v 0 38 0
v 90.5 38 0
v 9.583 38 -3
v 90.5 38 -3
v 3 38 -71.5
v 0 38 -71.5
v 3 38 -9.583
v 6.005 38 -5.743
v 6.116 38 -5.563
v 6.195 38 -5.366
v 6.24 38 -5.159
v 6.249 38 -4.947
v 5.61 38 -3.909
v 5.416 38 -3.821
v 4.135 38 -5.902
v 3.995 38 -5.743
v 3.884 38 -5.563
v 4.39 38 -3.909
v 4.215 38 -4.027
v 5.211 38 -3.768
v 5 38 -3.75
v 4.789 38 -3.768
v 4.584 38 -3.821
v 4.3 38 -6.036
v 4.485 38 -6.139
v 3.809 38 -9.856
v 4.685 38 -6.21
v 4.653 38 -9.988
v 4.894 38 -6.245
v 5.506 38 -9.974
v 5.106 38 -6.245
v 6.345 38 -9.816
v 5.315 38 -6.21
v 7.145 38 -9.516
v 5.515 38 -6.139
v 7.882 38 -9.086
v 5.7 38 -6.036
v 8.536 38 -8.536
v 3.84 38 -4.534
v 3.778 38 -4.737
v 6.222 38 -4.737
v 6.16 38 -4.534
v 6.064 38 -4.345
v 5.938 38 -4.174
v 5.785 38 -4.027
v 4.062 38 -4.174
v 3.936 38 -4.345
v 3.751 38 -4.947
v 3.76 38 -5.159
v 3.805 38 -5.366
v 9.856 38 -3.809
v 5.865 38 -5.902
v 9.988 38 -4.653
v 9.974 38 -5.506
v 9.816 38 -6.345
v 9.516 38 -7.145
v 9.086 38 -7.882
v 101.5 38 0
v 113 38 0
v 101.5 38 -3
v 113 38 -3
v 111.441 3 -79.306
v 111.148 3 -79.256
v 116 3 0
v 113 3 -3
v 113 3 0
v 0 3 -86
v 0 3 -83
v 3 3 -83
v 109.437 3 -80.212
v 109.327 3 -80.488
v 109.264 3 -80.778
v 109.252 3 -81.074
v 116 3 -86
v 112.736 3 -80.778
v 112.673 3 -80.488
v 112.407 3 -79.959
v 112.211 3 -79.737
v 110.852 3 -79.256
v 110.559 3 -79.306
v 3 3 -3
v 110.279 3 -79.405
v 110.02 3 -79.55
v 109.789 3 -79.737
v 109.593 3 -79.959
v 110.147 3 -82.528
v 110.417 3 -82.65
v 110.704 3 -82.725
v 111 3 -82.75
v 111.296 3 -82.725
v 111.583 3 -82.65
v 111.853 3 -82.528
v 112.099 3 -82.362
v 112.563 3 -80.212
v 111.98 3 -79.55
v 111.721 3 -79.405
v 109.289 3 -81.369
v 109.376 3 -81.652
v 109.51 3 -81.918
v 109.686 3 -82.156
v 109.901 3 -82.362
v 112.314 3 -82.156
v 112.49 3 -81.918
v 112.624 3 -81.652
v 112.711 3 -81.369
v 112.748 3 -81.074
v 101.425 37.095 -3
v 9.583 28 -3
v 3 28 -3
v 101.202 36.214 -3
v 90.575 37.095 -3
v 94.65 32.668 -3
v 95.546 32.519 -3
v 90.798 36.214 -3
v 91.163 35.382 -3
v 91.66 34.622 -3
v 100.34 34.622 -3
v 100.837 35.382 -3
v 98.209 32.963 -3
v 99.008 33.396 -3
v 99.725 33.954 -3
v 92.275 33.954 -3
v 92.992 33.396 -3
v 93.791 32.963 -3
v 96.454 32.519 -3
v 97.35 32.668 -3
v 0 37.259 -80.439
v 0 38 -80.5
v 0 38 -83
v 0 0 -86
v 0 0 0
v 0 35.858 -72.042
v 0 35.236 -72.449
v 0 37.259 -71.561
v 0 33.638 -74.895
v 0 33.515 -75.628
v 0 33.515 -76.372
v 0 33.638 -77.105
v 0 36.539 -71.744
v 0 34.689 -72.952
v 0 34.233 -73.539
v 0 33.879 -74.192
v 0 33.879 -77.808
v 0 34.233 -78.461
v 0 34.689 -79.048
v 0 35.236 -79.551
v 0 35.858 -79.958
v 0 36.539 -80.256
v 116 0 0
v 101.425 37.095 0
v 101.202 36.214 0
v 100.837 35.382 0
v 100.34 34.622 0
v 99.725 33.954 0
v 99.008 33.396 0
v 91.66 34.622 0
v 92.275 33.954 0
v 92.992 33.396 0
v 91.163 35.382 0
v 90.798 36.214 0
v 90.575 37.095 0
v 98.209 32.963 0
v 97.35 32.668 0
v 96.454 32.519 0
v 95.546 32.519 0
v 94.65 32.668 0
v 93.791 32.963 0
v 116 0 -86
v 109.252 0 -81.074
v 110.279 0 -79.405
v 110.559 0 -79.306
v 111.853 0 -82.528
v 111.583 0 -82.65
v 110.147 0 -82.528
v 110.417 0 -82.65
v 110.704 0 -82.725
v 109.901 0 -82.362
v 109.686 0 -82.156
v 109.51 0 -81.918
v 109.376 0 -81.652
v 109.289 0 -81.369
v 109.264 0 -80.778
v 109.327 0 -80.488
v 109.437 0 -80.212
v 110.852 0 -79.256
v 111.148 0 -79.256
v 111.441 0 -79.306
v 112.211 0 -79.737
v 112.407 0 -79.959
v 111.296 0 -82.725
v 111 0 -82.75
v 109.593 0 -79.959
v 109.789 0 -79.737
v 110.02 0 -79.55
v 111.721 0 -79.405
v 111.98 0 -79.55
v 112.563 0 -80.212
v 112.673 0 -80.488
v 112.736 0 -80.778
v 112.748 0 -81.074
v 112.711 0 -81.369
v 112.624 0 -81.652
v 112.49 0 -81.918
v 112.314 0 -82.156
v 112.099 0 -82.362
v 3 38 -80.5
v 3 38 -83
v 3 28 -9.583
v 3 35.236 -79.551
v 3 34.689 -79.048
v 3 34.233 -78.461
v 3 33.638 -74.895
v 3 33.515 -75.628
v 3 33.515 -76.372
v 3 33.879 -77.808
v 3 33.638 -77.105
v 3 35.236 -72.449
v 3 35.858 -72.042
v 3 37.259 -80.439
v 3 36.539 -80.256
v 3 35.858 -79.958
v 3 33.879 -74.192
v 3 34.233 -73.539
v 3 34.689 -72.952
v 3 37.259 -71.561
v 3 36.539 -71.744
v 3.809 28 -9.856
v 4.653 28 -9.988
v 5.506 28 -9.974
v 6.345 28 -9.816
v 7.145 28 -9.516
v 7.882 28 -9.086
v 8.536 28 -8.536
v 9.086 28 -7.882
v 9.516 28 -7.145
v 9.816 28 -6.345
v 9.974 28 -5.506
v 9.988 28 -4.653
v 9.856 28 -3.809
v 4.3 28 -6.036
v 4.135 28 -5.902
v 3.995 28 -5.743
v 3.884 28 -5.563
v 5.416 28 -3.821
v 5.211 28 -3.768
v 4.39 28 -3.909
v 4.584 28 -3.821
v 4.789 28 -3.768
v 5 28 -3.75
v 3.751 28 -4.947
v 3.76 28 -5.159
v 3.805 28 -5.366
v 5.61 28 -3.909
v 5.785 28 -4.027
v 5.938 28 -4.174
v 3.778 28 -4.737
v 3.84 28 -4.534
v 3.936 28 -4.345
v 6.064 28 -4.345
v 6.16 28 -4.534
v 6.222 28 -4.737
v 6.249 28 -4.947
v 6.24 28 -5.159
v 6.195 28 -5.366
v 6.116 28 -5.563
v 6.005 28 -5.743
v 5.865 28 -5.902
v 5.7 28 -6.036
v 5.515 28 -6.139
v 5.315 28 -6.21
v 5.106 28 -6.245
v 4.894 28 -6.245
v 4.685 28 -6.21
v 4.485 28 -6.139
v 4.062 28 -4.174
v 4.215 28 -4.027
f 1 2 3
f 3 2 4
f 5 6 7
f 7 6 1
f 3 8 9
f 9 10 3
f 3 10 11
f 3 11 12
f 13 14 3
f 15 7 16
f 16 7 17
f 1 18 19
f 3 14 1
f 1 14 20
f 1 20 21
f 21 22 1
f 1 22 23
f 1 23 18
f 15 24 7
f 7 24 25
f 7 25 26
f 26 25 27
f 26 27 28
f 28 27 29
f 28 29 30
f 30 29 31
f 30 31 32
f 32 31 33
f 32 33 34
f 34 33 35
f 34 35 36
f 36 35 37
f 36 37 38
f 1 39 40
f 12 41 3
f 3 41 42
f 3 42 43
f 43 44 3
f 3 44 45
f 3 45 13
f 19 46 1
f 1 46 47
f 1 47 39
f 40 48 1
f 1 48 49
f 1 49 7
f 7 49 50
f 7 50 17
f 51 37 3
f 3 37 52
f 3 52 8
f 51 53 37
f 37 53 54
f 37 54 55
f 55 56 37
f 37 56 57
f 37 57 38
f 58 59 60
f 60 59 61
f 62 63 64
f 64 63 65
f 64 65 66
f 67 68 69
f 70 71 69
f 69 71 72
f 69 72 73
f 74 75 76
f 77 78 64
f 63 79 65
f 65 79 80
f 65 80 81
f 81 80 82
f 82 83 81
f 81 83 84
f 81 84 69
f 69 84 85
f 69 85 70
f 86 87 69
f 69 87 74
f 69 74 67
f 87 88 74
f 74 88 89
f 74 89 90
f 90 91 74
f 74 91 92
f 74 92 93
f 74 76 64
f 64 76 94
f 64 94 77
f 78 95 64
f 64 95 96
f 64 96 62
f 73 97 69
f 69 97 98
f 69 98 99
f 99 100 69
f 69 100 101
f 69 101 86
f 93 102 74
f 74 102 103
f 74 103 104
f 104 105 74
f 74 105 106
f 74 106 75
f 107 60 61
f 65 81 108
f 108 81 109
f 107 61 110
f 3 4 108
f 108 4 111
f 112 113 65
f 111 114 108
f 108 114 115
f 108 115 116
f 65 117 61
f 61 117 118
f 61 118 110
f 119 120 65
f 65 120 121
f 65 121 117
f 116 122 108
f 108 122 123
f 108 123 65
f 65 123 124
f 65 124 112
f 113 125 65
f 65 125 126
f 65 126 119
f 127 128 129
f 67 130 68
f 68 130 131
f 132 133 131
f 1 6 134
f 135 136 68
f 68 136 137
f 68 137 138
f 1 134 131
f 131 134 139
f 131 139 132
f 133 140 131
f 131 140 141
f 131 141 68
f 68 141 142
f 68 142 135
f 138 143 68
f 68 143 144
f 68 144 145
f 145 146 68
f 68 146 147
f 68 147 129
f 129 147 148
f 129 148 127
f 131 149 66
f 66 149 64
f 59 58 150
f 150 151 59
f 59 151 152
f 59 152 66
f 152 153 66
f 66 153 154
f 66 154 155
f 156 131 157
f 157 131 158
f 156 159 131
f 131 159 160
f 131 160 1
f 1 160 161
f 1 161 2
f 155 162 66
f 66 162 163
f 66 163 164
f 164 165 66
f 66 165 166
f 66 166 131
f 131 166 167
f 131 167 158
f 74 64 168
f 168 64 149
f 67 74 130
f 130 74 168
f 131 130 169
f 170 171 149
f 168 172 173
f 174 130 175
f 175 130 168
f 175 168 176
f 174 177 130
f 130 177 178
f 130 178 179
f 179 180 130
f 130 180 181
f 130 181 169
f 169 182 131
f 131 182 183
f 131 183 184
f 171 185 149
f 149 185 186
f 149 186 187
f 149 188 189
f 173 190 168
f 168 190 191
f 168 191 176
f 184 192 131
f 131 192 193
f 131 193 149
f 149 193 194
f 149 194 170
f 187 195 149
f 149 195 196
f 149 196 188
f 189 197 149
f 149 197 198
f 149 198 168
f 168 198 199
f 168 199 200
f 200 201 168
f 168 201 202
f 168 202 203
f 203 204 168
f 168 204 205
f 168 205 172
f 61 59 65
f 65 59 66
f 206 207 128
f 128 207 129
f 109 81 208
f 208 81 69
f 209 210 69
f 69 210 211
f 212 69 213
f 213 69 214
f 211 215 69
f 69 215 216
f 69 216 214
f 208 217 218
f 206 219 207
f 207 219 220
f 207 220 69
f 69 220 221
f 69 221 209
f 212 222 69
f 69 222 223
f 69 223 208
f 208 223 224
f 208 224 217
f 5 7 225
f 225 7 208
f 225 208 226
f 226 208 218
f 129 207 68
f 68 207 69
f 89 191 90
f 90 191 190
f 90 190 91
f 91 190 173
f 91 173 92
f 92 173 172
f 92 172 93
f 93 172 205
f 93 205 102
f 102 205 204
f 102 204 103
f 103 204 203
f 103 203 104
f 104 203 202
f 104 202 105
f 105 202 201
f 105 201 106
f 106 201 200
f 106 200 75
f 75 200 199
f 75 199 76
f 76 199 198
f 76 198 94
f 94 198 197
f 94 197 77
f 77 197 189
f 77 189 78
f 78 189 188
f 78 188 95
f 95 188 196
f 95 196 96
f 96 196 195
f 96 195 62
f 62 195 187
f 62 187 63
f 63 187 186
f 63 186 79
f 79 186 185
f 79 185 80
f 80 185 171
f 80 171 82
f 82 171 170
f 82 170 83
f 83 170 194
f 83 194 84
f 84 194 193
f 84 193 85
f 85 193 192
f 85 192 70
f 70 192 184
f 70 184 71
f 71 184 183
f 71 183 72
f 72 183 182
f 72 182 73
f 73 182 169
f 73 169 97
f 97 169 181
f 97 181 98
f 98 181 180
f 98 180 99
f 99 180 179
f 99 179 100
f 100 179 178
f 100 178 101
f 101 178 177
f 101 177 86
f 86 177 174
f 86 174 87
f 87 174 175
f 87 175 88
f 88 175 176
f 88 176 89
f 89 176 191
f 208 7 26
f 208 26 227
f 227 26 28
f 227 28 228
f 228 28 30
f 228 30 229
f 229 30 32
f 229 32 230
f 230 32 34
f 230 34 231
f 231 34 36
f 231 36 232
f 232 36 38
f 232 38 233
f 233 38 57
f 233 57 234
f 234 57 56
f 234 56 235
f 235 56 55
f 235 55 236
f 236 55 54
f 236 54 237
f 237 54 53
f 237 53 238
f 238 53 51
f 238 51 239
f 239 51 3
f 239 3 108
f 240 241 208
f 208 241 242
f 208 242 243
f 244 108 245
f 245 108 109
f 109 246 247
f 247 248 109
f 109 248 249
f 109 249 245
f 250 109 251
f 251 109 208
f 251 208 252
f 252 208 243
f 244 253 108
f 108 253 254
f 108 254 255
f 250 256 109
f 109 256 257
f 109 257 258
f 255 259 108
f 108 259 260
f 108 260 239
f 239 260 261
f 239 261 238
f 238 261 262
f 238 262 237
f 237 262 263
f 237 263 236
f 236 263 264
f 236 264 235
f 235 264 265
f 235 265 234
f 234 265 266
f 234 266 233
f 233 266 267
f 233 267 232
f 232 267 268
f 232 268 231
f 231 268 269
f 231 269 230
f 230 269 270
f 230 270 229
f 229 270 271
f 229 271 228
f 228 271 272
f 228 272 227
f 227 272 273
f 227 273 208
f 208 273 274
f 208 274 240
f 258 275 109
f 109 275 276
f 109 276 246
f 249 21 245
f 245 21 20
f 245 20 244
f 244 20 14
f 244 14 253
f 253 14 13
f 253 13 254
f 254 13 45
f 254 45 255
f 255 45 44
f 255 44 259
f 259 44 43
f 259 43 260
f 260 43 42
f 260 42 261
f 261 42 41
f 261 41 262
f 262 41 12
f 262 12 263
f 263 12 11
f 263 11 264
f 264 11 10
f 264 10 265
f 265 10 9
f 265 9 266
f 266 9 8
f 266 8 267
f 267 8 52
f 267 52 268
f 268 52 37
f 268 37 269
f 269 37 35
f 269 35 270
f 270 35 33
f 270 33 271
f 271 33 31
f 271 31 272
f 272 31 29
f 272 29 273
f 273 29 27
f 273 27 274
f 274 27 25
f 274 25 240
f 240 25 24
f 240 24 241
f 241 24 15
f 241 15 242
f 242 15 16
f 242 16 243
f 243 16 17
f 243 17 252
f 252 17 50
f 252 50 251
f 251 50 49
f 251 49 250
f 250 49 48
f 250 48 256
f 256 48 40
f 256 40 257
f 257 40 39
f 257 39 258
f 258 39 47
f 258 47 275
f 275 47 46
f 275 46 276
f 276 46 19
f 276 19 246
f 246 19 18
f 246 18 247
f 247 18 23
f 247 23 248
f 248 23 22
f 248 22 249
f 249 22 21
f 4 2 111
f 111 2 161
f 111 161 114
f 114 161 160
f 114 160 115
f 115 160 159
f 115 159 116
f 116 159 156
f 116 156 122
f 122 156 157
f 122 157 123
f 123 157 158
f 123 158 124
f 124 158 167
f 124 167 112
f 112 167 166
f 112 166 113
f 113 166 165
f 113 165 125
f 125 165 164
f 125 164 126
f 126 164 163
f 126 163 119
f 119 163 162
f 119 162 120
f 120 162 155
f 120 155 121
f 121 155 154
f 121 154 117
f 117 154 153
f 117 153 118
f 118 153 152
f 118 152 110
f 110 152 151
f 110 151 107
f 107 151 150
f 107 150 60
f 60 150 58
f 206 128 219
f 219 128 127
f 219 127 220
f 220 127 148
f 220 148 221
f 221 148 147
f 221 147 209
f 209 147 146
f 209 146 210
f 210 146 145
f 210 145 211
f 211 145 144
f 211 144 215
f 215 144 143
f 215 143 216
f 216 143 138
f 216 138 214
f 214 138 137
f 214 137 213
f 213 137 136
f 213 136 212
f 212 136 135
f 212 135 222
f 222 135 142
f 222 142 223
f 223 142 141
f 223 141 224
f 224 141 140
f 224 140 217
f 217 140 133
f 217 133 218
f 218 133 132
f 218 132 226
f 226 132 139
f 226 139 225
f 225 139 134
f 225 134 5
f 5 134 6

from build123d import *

# Parameters (mm, degrees)
SKETCH1_W           = 116
SKETCH1_H           = 86
BOSS_EXTRUDE1_DEPTH = 3
SKETCH2_W           = 113
SKETCH2_H           = 3
BOSS_EXTRUDE2_DEPTH = 35
SKETCH3_W           = 3
SKETCH3_H           = 80
BOSS_EXTRUDE3_DEPTH = 35
SKETCH4_R           = 1.75
CUT_EXTRUDE1_DEPTH  = 35
SKETCH5_R           = 5
SKETCH5_R_2         = 1.25
BOSS_EXTRUDE4_DEPTH = 10
SKETCH6_R           = 5.5
CUT_EXTRUDE2_DEPTH  = 10
SKETCH7_R           = 4.5
CUT_EXTRUDE3_DEPTH  = 10


with BuildPart() as part:
    # Sketch1 → Boss-Extrude1 (new body)
    with BuildSketch(Plane(origin=(0, 0, 0), x_dir=(1, 0, 0), z_dir=(0, 1, 0))):
        with Locations((58, 43)):
            Rectangle(SKETCH1_W, SKETCH1_H)
    extrude(amount=BOSS_EXTRUDE1_DEPTH)

    # Sketch2 → Boss-Extrude2 (add)
    with BuildSketch(Plane(origin=(0, 3, 0), x_dir=(1, 0, 0), z_dir=(0, 1, 0))):
        with Locations((56.5, 1.5)):
            Rectangle(SKETCH2_W, SKETCH2_H)
    extrude(amount=BOSS_EXTRUDE2_DEPTH)

    # Sketch3 → Boss-Extrude3 (add)
    with BuildSketch(Plane(origin=(0, 3, 0), x_dir=(1, 0, 0), z_dir=(0, 1, 0))):
        with Locations((1.5, 43)):
            Rectangle(SKETCH3_W, SKETCH3_H)
    extrude(amount=BOSS_EXTRUDE3_DEPTH)

    # Sketch4 → Cut-Extrude1 (cut)
    with BuildSketch(Plane.XZ):
        with Locations((111, -81)):
            Circle(SKETCH4_R)
    extrude(amount=-CUT_EXTRUDE1_DEPTH, mode=Mode.SUBTRACT)

    # Sketch5 → Boss-Extrude4 (add)
    with BuildSketch(Plane(origin=(0, 38, 0), x_dir=(1, 0, 0), z_dir=(0, 1, 0))):
        with Locations((5, 5)):
            Circle(SKETCH5_R)
        with Locations((5, 5)):
            Circle(SKETCH5_R_2, mode=Mode.SUBTRACT)
    extrude(amount=-BOSS_EXTRUDE4_DEPTH)

    # Sketch6 → Cut-Extrude2 (cut)
    with BuildSketch(Plane.XY):
        with Locations((96, 38)):
            Circle(SKETCH6_R)
    extrude(amount=-CUT_EXTRUDE2_DEPTH, mode=Mode.SUBTRACT)

    # Sketch7 → Cut-Extrude3 (cut)
    with BuildSketch(Plane.ZY):
        with Locations((-76, 38)):
            Circle(SKETCH7_R)
    extrude(amount=-CUT_EXTRUDE3_DEPTH, mode=Mode.SUBTRACT)


solid = part.part
